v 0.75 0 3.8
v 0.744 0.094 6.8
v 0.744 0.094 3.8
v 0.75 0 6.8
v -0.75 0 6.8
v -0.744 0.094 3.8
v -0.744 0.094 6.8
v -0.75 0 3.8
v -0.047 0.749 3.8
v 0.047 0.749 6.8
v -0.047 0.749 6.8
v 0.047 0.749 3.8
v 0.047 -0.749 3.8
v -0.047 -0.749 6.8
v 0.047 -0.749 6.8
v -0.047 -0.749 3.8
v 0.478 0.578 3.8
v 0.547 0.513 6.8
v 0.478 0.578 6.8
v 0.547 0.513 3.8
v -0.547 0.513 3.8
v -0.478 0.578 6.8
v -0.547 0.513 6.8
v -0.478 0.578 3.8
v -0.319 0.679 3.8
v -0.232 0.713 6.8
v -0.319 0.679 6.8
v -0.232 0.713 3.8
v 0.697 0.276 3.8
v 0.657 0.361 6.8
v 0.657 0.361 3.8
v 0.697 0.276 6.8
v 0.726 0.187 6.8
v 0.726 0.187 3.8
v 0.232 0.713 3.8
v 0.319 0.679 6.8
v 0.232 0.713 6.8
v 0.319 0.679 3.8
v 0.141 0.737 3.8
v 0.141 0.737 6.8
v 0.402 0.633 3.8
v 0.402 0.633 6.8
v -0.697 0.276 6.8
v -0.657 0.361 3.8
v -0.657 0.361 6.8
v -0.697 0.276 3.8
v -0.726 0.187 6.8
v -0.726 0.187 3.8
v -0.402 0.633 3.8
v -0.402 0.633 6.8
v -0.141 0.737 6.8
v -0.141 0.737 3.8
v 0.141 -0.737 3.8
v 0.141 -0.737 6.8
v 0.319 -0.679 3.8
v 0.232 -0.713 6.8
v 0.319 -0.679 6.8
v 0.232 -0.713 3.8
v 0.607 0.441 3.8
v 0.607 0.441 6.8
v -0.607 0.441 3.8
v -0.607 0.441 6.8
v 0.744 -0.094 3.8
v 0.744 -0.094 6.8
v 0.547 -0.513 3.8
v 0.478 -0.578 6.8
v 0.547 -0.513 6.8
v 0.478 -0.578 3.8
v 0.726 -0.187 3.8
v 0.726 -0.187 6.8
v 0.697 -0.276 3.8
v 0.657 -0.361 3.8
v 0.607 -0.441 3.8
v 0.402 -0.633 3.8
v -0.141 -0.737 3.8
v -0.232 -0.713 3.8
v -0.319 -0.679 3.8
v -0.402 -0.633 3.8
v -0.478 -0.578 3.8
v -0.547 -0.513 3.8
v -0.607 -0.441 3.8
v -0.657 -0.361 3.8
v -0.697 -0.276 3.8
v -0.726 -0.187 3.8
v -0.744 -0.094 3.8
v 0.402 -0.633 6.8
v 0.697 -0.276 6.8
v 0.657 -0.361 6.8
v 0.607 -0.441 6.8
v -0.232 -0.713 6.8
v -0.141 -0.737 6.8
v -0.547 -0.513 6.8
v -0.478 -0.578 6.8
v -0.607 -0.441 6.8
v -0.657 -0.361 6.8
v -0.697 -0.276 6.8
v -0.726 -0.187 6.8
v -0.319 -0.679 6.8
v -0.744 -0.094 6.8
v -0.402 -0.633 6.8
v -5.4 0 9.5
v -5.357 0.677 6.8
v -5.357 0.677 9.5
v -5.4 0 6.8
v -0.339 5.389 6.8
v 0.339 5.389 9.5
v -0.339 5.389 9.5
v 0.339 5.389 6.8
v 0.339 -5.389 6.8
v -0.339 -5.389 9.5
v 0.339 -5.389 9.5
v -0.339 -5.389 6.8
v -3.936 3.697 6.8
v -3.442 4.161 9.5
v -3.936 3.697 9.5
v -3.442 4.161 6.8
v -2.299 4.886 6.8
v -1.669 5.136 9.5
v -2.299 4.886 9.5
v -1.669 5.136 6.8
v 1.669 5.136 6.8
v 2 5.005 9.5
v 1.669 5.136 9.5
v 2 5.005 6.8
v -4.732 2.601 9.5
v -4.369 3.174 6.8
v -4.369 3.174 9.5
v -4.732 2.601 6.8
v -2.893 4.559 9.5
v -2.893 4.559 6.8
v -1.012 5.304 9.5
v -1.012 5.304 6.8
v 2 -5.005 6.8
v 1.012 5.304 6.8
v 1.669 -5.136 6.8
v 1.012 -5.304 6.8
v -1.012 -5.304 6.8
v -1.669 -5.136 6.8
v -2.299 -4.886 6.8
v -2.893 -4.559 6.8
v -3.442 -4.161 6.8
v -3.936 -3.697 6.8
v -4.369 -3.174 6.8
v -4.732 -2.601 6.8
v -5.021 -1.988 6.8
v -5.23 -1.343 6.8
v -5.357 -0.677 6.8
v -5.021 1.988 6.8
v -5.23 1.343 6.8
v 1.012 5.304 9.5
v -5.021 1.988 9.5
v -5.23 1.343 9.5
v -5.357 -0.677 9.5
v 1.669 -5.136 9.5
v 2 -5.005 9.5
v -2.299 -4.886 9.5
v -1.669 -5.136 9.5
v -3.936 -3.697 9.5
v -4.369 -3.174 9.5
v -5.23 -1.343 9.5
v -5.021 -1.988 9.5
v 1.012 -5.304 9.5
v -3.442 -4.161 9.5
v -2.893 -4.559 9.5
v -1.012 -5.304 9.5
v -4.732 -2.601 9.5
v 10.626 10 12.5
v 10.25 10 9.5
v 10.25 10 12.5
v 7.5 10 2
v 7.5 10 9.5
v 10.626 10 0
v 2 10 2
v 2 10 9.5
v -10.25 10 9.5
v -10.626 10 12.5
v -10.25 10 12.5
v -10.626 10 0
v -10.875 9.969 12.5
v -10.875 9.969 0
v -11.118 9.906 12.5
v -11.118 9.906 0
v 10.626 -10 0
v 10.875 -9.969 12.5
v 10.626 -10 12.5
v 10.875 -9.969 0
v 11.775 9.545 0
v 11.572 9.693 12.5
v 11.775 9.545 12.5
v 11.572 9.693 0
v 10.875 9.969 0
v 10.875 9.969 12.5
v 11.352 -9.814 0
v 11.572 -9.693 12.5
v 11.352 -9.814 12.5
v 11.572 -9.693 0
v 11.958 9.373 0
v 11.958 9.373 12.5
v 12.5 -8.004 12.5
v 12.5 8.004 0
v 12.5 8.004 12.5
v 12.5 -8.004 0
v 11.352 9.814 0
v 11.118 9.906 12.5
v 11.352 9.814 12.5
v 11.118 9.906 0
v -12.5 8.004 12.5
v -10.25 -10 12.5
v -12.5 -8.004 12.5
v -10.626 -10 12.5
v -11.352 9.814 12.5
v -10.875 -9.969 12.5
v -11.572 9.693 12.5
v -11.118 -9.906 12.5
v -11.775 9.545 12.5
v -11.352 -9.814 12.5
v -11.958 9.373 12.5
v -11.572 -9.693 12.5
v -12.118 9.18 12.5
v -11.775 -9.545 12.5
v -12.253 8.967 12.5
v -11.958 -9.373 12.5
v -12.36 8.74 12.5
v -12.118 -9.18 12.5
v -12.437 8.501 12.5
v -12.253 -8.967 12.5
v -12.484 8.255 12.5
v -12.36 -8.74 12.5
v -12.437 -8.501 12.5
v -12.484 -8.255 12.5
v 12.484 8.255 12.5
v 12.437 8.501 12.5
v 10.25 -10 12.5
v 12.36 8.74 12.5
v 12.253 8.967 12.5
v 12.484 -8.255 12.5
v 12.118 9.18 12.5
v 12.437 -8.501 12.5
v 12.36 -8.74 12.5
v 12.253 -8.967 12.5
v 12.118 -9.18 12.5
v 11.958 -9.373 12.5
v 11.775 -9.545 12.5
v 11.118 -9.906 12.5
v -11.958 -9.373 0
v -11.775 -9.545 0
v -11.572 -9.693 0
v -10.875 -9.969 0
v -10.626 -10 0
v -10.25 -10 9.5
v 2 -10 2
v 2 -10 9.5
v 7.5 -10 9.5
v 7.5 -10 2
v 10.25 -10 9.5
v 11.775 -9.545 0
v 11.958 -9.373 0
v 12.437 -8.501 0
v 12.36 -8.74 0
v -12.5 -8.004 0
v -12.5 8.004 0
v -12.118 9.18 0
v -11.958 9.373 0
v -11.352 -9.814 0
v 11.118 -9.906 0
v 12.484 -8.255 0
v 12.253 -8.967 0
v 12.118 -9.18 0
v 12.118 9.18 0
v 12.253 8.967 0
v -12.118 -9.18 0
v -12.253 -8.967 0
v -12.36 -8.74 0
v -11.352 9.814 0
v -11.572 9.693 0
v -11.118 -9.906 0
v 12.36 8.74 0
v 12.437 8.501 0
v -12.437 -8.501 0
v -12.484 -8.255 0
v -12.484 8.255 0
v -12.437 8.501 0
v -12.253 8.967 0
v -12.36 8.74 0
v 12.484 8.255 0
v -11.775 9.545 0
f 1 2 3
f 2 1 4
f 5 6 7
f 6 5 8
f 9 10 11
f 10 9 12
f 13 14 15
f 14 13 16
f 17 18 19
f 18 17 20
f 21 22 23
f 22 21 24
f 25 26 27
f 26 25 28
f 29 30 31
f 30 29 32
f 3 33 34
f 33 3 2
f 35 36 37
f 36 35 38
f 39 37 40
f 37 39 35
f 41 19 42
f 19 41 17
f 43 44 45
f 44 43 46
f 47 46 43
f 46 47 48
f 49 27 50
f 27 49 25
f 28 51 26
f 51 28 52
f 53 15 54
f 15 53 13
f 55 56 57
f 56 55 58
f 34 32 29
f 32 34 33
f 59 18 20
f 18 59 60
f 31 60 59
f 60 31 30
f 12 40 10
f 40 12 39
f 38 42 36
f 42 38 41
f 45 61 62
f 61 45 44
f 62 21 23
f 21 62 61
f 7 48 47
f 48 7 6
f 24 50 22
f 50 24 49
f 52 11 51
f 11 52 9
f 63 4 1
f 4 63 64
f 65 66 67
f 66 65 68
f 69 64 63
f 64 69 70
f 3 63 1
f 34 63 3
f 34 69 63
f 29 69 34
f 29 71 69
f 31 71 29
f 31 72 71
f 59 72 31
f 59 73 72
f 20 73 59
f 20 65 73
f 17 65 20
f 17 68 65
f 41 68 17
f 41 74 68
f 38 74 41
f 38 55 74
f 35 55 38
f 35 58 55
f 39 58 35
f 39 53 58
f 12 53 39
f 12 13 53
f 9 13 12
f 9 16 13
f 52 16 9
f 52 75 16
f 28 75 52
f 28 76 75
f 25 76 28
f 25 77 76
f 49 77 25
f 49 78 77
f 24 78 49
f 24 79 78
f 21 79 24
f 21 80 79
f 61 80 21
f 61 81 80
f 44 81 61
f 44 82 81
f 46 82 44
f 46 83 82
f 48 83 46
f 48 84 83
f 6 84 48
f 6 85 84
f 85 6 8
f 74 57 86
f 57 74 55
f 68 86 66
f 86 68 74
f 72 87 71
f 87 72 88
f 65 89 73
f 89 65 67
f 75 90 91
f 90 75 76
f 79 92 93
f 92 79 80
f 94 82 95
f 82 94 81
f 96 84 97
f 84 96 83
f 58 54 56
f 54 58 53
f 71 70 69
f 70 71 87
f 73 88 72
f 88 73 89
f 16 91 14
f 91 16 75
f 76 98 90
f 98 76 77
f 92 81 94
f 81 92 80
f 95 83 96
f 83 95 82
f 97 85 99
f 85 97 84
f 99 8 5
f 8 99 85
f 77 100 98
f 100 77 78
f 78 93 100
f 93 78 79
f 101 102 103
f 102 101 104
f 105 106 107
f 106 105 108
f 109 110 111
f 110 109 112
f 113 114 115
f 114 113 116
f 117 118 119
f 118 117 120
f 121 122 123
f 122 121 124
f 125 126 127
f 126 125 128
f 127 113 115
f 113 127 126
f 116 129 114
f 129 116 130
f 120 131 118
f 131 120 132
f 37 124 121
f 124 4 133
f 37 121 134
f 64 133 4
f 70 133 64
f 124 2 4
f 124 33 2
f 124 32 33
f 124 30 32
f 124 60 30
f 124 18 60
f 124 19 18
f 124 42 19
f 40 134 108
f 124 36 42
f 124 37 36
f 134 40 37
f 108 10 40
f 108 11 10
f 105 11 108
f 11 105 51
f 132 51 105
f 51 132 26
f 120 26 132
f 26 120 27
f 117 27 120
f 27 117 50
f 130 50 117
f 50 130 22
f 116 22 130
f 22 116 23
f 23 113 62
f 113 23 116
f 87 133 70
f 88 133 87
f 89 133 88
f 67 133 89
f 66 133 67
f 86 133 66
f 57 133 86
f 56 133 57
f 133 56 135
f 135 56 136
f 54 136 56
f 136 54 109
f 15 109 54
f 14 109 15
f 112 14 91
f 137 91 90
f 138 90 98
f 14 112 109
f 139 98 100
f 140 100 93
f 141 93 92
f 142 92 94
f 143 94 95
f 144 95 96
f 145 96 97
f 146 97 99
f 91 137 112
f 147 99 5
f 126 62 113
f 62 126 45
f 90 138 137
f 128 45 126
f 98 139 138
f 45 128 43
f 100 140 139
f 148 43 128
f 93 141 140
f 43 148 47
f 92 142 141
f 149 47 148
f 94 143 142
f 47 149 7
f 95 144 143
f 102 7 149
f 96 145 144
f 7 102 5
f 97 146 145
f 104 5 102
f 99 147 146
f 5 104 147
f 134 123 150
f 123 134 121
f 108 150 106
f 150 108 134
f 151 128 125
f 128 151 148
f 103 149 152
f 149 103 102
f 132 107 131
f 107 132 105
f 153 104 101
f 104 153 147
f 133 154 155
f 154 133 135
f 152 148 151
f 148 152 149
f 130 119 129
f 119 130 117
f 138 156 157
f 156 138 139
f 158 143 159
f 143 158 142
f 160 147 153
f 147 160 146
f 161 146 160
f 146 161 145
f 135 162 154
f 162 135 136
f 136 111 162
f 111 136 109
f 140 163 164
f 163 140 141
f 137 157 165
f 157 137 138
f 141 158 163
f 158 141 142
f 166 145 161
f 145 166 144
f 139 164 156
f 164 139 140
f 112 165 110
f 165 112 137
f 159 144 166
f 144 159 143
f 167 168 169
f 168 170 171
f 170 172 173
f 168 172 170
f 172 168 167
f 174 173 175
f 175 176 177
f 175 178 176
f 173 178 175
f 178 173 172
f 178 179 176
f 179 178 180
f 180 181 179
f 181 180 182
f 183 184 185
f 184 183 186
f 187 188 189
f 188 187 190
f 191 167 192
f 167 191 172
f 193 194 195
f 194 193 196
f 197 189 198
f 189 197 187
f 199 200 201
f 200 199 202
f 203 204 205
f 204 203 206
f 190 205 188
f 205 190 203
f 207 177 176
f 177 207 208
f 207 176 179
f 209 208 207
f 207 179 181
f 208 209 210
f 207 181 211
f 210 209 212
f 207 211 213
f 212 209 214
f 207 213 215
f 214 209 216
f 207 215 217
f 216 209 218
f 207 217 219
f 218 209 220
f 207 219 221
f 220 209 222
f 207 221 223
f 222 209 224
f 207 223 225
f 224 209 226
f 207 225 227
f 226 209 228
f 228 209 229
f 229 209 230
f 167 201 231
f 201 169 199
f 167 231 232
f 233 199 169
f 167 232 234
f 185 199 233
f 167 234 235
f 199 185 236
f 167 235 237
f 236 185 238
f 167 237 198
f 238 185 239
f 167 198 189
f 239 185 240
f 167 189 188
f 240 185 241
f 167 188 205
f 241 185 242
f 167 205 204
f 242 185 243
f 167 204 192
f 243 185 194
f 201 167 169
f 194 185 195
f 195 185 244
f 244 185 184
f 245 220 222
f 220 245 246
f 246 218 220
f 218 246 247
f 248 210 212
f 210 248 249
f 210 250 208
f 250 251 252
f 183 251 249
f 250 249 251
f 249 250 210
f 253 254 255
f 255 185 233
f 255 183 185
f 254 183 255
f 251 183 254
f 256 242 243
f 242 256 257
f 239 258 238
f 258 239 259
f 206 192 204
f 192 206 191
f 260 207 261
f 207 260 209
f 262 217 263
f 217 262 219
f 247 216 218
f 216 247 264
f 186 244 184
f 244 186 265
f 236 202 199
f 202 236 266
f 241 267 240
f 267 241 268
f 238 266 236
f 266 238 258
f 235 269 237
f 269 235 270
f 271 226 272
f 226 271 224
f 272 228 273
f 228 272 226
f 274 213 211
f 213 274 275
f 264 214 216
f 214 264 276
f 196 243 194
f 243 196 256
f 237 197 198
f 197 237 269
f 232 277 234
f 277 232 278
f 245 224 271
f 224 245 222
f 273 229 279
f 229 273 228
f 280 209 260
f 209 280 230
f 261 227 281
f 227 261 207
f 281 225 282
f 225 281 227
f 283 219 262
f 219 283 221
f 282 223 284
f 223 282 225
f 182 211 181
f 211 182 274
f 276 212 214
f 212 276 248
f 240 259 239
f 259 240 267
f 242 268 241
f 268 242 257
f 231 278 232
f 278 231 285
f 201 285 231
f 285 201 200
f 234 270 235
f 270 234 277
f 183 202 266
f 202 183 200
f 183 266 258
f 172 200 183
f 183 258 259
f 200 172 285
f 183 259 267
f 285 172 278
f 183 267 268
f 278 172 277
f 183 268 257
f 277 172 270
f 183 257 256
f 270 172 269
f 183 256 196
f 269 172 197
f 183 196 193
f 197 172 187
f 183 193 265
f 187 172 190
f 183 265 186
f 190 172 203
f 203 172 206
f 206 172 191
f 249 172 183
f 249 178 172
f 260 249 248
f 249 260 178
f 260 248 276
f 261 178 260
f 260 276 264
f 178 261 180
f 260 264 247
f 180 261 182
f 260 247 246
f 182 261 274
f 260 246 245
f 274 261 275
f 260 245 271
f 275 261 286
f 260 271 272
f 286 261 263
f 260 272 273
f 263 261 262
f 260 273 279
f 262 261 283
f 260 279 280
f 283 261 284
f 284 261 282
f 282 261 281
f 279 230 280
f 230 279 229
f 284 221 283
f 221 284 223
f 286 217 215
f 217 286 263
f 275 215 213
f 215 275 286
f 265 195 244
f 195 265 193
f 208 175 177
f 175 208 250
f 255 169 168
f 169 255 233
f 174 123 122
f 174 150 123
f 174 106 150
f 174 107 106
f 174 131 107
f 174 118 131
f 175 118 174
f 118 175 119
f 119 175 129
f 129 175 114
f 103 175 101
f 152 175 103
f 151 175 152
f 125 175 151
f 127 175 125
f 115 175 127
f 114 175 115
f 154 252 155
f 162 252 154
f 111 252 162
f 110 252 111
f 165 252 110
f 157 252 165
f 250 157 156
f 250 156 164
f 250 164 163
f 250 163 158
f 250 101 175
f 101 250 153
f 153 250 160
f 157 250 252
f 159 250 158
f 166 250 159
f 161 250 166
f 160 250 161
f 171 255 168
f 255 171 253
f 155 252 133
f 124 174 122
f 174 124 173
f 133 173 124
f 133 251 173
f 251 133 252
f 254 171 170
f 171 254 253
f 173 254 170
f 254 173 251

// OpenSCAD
// file: scad-utils/morphology.scad
// Copyright (c) 2013 Oskar Linde. All rights reserved.
// License: BSD
//
// This library contains basic 2D morphology operations
//
// outset(d=1)            - creates a polygon at an offset d outside a 2D shape
// inset(d=1)             - creates a polygon at an offset d inside a 2D shape
// fillet(r=1)            - adds fillets of radius r to all concave corners of a 2D shape
// rounding(r=1)          - adds rounding to all convex corners of a 2D shape
// shell(d,center=false)  - makes a shell of width d along the edge of a 2D shape
//                        - positive values of d places the shell on the outside
//                        - negative values of d places the shell on the inside
//                        - center=true and positive d places the shell centered on the edge

module outset(d=1) {
	// Bug workaround for older OpenSCAD versions
	if (version_num() < 20130424) render() outset_extruded(d) children();
	else minkowski() {
		circle(r=d);
		children();
	}
}

module outset_extruded(d=1) {
   projection(cut=true) minkowski() {
        cylinder(r=d);
        linear_extrude(center=true) children();
   }
}

module inset(d=1) {
	 render() inverse() outset(d=d) inverse() children();
}

module fillet(r=1) {
	inset(d=r) render() outset(d=r) children();
}

module rounding(r=1) {
	outset(d=r) inset(d=r) children();
}

module shell(d,center=false) {
	if (center && d > 0) {
		difference() {
			outset(d=d/2) children();
			inset(d=d/2) children();
		}
	}
	if (!center && d > 0) {
		difference() {
			outset(d=d) children();
			children();
		}
	}
	if (!center && d < 0) {
		difference() {
			children();
			inset(d=-d) children();
		}
	}
	if (d == 0) children();
}


// Below are for internal use only

module inverse() {
	difference() {
		square(1e5,center=true);
		children();
	}
}


// TEST CODE

use <mirror.scad>

module arrow(l=1,w=.6,t=0.15) {
	mirror_y() polygon([[0,0],[l,0],[l-w/2,w/2],[l-w/2-sqrt(2)*t,w/2],[l-t/2-sqrt(2)*t,t/2],[0,t/2]]);
}

module shape() {
	polygon([[0,0],[1,0],[1.5,1],[2.5,1],[2,-1],[0,-1]]);
}

if(0) assign($fn=32) {

	for (p = [0:10*3-1]) assign(o=floor(p/3)) {
		translate([(p%3)*2.5,-o*3]) {
			//%if (p % 3 == 1) translate([0,0,1]) shape();
			if (p % 3 == 0) shape();
			if (p % 3 == 1) translate([0.6,0]) arrow();
			if (p % 3 == 2) {
				if (o == 0) inset(d=0.3) shape();
				if (o == 1) outset(d=0.3) shape();
				if (o == 2) rounding(r=0.3) shape();
				if (o == 3) fillet(r=0.3) shape();
				if (o == 4) shell(d=0.3) shape();
				if (o == 5) shell(d=-0.3) shape();
				if (o == 6) shell(d=0.3,center=true) shape();
				if (o == 7) rounding(r=0.3) fillet(r=0.3) shape();
				if (o == 8) shell(d=0.3,center=true) fillet(r=0.3) rounding(r=0.3) shape();
				if (o == 9) shell(d=-0.3) fillet(r=0.3) rounding(r=0.3) shape();
			}
		}
	}
}
// file: scad-utils/mirror.scad
// Copyright (c) 2013 Oskar Linde. All rights reserved.
// License: BSD
//
// This library contains simple mirroring functions
//
// mirror_x()
// mirror_y()
// mirror_z()


module mirror_x() {
  union() {
    child();
    scale([-1,1,1]) child();
  }
}

module mirror_y() {
  union() {
    child();
    scale([1,-1,1]) child();
  }
}

module mirror_z() {
  union() {
    child();
    scale([1,1,-1]) child();
  }
}
// main file
include <scad-utils/mirror.scad>
include <scad-utils/morphology.scad>

$fn=50;

MG_Z=2.7;
SCREW_Z=3;

CABLE_X=5.5;
CABLE_Z=4.8;

BODY_X=25;
BODY_Y=20;
BODY_TOP_Y=20.5;
BODY_BOTTOM_Z=2;
BODY_TOP_Z=3;
BODY_Z=BODY_TOP_Z + BODY_BOTTOM_Z + MG_Z + CABLE_Z;

difference(){
  // body
  linear_extrude(height=BODY_Z, center=!true, convexity=10, twist=0)
  rounding(r=2)
  square(size=[BODY_X, BODY_Y], center=true);

  // magnet space & screw hole
  translate([0, 0, BODY_Z - SCREW_Z - MG_Z - BODY_TOP_Z]) {
    cylinder(d=1.5, h=MG_Z+SCREW_Z, center=!true);
    translate([0, 0, SCREW_Z])
    cylinder(d=10.8, h=MG_Z + 0.5, center=!true);
  }

  // top space
  translate([0, 0, 10/2 + BODY_Z - BODY_TOP_Z]) 
  cube(size=[BODY_TOP_Y, BODY_Y+1, 10], center=true);

  // cable space
  translate([CABLE_X/2+2, 0, BODY_Z/2 + BODY_BOTTOM_Z]) 
  cube(size=[CABLE_X, BODY_Y*2, BODY_Z], center=true);
}

// cable
%translate([CABLE_X/2+2, 0, CABLE_Z/2 + 2]) 
cube(size=[CABLE_X, BODY_Y*2, CABLE_Z], center=true);
